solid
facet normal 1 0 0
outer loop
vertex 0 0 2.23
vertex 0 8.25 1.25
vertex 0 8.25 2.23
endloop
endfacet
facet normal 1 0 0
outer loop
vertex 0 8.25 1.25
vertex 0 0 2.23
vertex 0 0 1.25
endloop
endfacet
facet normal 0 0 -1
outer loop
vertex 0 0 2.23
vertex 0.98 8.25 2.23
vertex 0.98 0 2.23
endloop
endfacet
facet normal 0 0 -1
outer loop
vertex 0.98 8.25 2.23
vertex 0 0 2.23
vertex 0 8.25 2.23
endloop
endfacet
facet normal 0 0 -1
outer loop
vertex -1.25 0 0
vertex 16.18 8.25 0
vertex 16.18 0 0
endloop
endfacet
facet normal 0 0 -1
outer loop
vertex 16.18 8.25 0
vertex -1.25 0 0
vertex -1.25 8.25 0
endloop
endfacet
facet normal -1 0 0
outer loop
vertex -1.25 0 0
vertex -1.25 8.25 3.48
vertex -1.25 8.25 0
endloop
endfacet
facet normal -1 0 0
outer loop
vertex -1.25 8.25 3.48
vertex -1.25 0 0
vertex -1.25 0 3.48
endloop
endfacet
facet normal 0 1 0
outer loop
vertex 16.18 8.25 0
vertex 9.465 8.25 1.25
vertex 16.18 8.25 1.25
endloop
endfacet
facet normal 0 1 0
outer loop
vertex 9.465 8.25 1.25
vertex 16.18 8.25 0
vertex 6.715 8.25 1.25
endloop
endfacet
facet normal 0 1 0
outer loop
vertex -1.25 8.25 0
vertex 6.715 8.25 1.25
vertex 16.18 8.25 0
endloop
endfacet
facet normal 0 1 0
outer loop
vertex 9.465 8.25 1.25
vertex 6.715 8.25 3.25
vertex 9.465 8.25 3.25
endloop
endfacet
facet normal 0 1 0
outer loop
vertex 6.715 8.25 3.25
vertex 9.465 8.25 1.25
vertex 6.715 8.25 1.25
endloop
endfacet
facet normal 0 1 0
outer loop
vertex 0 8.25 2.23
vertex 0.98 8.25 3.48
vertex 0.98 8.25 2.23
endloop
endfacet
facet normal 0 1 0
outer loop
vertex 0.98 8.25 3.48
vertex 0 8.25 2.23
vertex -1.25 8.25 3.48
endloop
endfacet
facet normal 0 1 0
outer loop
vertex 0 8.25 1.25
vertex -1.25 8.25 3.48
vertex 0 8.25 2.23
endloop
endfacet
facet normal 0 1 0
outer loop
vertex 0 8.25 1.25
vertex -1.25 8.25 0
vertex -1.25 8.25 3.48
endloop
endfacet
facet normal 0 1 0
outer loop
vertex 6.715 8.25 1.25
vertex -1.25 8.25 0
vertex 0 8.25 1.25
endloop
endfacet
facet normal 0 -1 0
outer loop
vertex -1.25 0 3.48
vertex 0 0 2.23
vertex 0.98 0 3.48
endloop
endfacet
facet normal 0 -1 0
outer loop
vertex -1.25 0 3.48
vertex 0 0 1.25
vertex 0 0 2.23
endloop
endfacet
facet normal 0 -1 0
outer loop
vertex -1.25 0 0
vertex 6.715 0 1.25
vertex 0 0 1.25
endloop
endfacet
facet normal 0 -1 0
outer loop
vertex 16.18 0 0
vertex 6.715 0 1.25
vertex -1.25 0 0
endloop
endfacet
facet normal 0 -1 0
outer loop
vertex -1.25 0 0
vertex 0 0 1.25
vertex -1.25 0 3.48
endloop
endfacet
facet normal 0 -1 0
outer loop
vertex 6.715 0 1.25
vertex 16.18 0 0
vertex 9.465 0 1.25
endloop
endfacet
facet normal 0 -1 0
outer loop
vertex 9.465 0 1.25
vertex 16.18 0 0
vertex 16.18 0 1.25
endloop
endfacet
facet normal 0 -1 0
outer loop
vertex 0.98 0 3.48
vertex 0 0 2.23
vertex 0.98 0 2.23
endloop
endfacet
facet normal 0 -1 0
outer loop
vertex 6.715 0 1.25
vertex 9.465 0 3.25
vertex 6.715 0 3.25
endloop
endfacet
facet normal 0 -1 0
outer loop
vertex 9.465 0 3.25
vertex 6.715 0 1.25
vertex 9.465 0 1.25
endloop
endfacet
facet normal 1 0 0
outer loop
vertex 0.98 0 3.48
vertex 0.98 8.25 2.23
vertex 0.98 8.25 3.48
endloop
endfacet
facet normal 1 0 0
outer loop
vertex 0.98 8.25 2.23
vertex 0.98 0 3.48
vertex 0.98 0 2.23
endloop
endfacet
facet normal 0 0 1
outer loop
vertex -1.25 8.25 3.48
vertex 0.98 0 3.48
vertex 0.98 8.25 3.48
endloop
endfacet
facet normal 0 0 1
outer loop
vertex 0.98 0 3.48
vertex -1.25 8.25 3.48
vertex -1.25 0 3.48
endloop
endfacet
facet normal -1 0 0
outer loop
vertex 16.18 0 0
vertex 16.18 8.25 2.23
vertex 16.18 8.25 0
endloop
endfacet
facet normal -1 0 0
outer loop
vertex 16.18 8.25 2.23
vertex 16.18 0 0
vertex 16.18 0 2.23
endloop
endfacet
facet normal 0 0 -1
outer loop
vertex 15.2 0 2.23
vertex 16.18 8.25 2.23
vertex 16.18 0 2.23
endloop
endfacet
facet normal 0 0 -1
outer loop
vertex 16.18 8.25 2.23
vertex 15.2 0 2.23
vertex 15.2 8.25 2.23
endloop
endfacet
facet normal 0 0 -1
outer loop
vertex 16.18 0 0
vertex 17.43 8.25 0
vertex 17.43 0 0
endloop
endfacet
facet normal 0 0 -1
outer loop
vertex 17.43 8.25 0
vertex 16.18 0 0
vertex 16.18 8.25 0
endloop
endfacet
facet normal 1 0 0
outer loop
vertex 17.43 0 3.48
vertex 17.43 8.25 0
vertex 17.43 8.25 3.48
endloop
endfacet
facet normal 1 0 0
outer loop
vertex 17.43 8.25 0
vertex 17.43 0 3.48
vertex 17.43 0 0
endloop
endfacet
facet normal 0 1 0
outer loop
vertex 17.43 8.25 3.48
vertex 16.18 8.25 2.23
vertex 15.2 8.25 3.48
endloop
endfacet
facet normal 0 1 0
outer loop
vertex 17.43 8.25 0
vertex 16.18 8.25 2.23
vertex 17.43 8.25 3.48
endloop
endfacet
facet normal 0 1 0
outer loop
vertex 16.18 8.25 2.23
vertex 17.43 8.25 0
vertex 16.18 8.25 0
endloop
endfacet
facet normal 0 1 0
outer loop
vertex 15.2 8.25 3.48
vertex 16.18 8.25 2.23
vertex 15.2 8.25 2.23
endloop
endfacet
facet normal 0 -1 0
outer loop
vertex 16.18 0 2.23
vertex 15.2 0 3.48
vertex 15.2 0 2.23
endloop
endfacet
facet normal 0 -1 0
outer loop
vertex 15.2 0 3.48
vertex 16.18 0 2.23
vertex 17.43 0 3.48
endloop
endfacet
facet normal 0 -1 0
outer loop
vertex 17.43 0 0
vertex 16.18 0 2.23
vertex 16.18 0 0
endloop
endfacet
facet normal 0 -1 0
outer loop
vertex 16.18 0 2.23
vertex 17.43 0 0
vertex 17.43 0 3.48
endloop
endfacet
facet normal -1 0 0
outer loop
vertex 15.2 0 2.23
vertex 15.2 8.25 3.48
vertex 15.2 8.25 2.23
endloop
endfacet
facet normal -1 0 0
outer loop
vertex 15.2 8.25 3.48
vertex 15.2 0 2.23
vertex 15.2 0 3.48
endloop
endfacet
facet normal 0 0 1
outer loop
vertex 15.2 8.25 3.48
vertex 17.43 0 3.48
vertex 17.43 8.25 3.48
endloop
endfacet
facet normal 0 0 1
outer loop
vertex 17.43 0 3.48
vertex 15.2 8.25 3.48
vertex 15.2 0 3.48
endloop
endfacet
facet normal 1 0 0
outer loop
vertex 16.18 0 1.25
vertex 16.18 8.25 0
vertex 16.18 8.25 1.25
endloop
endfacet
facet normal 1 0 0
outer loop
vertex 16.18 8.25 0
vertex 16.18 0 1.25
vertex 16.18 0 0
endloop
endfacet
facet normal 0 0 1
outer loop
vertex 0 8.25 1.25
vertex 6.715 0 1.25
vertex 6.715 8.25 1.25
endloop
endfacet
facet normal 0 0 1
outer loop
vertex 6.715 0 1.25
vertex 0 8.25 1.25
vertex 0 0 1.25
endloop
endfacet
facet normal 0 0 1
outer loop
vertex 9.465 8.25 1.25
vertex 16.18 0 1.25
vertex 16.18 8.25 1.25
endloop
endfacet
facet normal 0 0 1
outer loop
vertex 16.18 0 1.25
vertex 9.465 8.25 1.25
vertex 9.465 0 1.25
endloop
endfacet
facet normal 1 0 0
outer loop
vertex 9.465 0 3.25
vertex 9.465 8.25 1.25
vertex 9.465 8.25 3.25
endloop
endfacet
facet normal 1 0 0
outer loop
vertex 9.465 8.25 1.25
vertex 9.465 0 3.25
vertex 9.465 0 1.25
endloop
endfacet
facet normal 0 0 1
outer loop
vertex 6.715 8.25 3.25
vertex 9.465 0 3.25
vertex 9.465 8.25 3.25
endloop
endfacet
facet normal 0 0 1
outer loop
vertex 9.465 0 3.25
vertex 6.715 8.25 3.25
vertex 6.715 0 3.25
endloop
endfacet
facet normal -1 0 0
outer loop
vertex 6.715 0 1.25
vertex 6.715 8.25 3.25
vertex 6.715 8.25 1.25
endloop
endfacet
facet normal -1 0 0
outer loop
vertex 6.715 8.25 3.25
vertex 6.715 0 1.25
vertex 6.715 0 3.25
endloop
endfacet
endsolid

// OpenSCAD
$fn=32;

tubeSmushSqueeze = 2.75;
tubeSmushDepth = 2;
heatSinkHeight = 8.25;
heatSinkBaseWidth = 9.40;
heatSinkWidth = 9.05;
heatSinkDepth = 6.09;
heatSinkFinThickness = 0.98;
heatSinkFinSeparation = 1.25;
bracketThickness = 1.25;

xBase = (heatSinkDepth*2)+tubeSmushSqueeze+heatSinkFinSeparation;
yBase = heatSinkHeight;
zBase = bracketThickness;
module base() {    
    cube([xBase,yBase,zBase]);
}

xSmush = tubeSmushSqueeze;
ySmush = heatSinkHeight;
zSmush = tubeSmushDepth;
module smusher() {
    cube([xSmush,ySmush,zSmush]);
}

module clip() {
    cube([heatSinkFinSeparation,yBase,heatSinkFinThickness+zBase]);
    translate([0,0,heatSinkFinThickness+zBase])
    cube([heatSinkFinSeparation+heatSinkFinThickness,yBase,heatSinkFinSeparation]);
}

module sides() {
    cube([xBase+(heatSinkFinSeparation*2),bracketThickness,zBase+hea]);
}

module halfAssem() {
    // Assemble all of the components of the part.
    base();

    translate([(xBase/2)-(xSmush/2),0,bracketThickness])
    smusher();

    translate([-heatSinkFinSeparation,0,0])
    clip();
    translate([heatSinkFinSeparation+xBase,0,0])
    mirror([1,0,0])
    clip();
}

halfAssem();
